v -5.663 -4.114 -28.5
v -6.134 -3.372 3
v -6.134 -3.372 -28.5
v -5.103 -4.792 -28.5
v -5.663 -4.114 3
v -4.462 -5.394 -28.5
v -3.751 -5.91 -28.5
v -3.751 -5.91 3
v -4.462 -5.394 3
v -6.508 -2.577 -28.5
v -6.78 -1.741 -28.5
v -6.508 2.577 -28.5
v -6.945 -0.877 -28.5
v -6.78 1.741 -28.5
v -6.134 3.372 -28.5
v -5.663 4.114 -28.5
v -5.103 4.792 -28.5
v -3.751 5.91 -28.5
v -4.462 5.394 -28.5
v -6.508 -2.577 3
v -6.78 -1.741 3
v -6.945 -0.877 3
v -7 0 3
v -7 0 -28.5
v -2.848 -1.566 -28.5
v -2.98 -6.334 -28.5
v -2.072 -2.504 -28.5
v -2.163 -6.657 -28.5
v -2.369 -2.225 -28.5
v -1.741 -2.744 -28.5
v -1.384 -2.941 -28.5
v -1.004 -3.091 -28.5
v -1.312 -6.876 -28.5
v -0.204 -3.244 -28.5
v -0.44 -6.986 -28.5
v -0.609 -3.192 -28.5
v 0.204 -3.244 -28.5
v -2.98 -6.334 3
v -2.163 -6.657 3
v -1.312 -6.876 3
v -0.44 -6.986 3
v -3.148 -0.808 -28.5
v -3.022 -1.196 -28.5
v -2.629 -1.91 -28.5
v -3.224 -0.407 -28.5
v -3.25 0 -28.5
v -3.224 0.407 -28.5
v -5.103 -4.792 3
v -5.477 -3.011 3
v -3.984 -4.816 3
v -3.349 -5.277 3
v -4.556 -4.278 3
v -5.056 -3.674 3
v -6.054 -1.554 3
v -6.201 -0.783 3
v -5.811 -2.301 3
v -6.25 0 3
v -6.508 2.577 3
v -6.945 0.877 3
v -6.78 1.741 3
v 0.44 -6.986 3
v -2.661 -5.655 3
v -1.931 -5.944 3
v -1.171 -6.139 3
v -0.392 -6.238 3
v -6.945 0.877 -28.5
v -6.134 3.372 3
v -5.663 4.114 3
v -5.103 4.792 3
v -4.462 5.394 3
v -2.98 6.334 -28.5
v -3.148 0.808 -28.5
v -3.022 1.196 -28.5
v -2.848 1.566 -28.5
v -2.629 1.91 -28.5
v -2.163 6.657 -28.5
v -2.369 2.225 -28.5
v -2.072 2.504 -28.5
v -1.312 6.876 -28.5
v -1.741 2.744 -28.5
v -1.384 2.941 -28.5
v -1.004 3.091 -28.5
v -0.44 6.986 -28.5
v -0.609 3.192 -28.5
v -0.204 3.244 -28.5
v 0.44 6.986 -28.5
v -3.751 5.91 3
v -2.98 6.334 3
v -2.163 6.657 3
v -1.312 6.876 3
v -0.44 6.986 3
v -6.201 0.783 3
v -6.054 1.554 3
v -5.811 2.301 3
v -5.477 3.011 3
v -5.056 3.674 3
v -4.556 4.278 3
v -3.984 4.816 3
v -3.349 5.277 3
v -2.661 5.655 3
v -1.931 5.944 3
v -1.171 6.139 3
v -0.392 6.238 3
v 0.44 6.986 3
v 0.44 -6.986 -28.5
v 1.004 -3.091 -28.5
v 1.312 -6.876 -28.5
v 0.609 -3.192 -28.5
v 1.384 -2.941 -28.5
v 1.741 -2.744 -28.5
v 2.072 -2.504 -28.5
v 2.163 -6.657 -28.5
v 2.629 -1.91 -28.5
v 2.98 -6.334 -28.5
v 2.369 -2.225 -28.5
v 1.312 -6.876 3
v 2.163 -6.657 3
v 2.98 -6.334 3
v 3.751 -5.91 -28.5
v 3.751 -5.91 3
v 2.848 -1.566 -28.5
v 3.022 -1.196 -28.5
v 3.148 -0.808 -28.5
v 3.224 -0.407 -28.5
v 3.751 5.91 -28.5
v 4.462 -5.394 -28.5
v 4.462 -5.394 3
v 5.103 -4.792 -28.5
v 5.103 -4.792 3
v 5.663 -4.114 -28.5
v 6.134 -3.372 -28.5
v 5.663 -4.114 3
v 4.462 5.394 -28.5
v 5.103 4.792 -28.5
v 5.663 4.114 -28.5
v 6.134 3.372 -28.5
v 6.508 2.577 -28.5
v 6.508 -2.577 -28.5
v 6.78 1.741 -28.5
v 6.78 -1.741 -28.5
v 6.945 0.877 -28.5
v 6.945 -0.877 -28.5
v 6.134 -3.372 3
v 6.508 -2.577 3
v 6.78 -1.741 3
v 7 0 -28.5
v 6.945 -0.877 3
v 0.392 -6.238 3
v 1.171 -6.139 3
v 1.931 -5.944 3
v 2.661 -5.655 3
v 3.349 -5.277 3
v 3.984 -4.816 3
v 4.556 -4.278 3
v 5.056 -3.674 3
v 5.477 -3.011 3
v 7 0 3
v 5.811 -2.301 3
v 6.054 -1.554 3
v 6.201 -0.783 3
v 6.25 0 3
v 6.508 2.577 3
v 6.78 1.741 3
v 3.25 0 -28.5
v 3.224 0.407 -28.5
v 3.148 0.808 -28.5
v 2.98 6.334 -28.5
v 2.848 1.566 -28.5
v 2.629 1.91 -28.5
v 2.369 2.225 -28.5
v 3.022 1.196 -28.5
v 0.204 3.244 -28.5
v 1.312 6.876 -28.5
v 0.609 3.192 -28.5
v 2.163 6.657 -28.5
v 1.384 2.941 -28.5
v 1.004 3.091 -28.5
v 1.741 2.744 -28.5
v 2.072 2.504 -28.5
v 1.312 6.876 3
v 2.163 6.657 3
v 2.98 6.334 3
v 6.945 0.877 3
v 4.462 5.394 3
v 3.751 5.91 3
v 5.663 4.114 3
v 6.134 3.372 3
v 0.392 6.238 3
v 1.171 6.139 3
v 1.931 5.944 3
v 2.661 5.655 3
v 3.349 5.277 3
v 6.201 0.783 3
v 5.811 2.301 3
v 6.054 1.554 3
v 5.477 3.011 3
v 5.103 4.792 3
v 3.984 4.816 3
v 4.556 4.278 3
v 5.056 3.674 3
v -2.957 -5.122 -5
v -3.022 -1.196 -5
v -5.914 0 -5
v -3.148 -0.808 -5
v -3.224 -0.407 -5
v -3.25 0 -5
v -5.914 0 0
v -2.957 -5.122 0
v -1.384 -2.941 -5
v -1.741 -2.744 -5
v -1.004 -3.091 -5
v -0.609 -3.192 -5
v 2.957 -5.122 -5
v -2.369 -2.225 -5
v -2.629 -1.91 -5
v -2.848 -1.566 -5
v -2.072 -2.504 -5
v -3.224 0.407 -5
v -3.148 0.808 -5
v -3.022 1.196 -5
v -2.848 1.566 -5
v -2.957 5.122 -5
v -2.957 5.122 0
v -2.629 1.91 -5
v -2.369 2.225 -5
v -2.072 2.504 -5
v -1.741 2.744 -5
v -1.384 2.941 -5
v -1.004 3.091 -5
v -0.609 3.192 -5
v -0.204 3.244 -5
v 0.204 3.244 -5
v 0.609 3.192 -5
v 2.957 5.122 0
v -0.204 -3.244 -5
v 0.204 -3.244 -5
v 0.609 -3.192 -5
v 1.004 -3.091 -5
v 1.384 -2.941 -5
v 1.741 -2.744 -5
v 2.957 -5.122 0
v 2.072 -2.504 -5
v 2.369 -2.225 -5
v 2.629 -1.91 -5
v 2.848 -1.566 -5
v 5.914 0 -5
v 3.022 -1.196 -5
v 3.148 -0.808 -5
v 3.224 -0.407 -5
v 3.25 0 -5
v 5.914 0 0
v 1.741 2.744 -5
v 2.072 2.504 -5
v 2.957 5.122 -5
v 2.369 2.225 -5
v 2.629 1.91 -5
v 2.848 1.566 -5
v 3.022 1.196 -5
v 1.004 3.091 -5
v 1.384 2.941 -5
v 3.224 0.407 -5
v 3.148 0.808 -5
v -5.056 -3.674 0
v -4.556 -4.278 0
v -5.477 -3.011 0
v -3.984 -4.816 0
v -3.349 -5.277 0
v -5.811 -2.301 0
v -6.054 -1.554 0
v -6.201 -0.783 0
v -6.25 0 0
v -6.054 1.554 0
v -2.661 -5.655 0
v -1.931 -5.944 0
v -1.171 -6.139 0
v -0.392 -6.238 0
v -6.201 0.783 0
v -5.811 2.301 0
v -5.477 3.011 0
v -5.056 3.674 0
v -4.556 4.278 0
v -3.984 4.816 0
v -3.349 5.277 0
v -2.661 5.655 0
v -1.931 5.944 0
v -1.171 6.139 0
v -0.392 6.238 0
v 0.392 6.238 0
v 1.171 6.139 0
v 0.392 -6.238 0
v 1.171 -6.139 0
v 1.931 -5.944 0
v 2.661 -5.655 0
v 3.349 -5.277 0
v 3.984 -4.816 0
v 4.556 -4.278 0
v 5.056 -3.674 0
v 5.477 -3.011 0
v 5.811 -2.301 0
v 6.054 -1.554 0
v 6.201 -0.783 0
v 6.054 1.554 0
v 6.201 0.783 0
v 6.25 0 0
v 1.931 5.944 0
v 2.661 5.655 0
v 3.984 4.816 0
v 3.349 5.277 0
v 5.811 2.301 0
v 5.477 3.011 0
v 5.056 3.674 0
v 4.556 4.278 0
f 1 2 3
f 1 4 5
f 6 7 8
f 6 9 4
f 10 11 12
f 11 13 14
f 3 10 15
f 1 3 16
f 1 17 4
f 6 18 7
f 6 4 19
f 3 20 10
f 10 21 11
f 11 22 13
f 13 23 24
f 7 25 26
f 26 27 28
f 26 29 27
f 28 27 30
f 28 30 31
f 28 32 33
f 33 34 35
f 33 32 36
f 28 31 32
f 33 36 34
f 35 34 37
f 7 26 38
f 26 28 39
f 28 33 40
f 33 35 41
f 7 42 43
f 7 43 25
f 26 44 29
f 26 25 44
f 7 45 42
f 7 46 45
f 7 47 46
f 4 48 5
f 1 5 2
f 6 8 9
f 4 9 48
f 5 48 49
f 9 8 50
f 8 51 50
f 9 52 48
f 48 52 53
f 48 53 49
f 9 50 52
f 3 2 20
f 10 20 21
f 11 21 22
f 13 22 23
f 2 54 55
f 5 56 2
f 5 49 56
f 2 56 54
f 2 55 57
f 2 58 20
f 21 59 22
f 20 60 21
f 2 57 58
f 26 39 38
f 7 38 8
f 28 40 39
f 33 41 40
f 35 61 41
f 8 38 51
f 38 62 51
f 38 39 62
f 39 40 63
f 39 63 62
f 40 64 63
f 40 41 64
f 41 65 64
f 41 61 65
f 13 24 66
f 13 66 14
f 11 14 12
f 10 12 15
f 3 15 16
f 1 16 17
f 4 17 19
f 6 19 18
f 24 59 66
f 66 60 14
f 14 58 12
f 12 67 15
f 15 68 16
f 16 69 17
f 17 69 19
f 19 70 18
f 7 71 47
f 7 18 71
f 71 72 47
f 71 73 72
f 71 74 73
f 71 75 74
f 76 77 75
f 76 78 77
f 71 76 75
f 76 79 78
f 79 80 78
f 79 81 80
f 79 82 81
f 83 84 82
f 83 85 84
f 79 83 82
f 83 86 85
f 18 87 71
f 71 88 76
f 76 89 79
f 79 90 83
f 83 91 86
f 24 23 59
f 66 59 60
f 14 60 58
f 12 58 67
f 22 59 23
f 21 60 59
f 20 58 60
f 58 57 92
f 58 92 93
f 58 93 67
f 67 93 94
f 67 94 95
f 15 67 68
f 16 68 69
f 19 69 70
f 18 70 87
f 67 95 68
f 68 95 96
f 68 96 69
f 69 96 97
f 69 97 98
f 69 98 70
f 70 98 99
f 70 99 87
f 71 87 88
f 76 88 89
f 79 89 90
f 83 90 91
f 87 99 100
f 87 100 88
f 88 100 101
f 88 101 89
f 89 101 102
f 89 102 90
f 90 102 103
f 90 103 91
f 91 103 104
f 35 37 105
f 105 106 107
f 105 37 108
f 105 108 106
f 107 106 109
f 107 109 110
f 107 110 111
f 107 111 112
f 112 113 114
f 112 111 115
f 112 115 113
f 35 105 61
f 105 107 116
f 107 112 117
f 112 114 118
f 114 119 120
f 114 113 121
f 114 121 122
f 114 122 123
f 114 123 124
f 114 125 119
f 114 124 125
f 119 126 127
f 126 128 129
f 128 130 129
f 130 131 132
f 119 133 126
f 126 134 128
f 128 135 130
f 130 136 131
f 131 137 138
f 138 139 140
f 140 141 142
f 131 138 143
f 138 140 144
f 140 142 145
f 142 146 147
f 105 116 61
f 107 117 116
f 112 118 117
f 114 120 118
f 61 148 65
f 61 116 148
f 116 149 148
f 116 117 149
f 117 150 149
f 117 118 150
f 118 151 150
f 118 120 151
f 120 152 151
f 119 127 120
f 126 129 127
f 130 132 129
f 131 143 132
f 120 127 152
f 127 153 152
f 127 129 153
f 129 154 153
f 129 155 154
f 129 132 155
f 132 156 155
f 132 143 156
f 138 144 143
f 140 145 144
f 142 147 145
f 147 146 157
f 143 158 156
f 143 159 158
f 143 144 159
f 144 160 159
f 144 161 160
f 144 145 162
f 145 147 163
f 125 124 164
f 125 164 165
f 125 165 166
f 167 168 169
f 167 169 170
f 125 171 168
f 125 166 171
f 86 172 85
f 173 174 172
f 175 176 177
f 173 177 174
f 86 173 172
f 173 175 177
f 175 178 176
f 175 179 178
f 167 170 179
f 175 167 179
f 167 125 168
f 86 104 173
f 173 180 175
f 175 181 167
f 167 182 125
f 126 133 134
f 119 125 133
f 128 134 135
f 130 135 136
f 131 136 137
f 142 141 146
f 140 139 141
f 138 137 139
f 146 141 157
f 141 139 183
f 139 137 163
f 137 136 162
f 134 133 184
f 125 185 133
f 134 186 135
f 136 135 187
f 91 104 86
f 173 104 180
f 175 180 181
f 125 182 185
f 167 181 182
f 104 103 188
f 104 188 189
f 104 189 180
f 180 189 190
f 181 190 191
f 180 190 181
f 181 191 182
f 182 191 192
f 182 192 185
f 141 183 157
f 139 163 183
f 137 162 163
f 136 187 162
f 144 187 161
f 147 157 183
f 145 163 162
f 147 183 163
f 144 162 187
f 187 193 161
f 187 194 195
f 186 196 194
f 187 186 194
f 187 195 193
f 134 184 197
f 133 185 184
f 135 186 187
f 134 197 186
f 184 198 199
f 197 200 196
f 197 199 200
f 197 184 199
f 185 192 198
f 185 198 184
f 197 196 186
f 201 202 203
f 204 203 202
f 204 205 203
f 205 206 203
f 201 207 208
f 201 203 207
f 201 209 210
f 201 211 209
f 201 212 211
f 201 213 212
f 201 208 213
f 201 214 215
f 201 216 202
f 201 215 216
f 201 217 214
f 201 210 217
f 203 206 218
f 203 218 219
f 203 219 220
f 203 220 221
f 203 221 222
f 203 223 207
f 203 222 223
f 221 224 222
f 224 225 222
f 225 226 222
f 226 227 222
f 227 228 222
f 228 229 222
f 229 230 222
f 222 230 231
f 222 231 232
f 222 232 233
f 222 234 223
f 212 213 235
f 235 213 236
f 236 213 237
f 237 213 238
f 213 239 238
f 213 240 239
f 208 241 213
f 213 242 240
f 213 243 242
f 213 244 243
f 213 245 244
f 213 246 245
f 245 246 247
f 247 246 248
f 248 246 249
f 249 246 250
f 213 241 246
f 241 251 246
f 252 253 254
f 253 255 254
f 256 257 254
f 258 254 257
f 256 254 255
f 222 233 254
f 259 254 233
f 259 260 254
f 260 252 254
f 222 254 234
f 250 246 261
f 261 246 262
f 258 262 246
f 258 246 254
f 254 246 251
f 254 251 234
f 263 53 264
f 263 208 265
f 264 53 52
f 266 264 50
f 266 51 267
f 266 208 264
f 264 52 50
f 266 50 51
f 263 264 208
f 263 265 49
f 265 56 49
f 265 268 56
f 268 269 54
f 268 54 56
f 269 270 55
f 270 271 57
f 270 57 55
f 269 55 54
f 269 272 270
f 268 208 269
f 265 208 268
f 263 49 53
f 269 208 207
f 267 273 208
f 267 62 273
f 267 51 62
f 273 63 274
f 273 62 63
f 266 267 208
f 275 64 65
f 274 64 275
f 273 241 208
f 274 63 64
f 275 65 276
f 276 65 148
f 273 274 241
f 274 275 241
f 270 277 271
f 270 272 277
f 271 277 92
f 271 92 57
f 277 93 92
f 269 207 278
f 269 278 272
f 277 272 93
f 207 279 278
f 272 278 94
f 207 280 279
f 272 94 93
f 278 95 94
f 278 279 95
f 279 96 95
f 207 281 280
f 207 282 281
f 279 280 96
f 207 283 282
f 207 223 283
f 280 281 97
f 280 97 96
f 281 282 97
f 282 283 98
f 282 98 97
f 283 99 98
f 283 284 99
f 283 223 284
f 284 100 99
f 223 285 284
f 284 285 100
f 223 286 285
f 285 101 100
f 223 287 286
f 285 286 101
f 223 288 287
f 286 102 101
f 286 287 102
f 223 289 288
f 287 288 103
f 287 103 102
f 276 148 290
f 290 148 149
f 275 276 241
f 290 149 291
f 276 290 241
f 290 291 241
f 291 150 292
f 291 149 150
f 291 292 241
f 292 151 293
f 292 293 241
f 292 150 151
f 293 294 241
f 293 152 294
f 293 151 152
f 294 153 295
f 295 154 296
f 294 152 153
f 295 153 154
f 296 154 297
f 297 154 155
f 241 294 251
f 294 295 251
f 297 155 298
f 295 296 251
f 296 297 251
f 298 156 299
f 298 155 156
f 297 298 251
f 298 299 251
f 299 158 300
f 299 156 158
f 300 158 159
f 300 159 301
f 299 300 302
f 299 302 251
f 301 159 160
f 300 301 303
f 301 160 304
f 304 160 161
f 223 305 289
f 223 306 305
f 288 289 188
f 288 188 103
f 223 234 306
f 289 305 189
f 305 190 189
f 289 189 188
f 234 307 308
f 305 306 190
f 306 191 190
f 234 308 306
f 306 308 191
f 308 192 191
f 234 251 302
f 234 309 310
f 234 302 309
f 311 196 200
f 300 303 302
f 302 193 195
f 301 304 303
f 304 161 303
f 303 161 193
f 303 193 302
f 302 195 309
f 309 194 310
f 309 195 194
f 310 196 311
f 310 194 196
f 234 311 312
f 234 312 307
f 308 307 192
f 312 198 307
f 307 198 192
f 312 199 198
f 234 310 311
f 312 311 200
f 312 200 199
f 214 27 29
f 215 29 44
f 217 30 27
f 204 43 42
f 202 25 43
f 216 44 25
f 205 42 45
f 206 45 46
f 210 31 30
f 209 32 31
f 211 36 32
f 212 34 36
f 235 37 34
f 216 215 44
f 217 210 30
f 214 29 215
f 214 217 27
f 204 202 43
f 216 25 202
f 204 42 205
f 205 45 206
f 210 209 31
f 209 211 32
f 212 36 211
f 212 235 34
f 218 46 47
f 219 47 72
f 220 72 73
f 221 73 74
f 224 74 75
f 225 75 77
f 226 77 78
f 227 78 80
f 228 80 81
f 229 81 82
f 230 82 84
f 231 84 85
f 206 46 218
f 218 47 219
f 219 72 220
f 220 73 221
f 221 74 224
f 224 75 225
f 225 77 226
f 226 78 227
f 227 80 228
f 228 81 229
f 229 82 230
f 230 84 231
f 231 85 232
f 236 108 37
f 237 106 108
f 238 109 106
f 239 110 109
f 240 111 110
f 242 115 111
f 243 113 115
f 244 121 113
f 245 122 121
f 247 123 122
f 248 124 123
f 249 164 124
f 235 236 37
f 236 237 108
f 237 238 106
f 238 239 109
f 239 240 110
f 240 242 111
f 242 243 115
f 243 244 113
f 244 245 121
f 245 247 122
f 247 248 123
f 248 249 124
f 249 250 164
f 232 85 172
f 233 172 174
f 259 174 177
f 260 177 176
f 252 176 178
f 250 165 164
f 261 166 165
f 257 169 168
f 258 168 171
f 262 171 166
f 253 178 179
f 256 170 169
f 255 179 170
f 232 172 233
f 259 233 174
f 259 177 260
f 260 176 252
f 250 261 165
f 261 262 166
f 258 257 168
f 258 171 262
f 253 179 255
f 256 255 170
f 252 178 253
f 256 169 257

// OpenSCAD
$fn = 50;


difference() {
	union() {
		translate(v = [0, 0, -28.5000000000]) {
			cylinder(h = 31.5000000000, r = 7.0000000000);
		}
		#translate(v = [0, 0, -30.0000000000]) {
			cylinder(h = 30, r = 2.8750000000);
		}
	}
	union() {
		translate(v = [0, 0, 0]) {
			rotate(a = [0, 0, 0]) {
				difference() {
					union() {
						translate(v = [0, 0, -5]) {
							linear_extrude(height = 5) {
								polygon(points = [[5.9142500000, 0.0000000000], [2.9571250000, 5.1218907443], [-2.9571250000, 5.1218907443], [-5.9142500000, 0.0000000000], [-2.9571250000, -5.1218907443], [2.9571250000, -5.1218907443]]);
							}
						}
					}
					union();
				}
			}
		}
		#cylinder(h = 3, r = 6.2500000000);
		#translate(v = [0, 0, -100.0000000000]) {
			cylinder(h = 200, r = 3.2500000000);
		}
	}
}
